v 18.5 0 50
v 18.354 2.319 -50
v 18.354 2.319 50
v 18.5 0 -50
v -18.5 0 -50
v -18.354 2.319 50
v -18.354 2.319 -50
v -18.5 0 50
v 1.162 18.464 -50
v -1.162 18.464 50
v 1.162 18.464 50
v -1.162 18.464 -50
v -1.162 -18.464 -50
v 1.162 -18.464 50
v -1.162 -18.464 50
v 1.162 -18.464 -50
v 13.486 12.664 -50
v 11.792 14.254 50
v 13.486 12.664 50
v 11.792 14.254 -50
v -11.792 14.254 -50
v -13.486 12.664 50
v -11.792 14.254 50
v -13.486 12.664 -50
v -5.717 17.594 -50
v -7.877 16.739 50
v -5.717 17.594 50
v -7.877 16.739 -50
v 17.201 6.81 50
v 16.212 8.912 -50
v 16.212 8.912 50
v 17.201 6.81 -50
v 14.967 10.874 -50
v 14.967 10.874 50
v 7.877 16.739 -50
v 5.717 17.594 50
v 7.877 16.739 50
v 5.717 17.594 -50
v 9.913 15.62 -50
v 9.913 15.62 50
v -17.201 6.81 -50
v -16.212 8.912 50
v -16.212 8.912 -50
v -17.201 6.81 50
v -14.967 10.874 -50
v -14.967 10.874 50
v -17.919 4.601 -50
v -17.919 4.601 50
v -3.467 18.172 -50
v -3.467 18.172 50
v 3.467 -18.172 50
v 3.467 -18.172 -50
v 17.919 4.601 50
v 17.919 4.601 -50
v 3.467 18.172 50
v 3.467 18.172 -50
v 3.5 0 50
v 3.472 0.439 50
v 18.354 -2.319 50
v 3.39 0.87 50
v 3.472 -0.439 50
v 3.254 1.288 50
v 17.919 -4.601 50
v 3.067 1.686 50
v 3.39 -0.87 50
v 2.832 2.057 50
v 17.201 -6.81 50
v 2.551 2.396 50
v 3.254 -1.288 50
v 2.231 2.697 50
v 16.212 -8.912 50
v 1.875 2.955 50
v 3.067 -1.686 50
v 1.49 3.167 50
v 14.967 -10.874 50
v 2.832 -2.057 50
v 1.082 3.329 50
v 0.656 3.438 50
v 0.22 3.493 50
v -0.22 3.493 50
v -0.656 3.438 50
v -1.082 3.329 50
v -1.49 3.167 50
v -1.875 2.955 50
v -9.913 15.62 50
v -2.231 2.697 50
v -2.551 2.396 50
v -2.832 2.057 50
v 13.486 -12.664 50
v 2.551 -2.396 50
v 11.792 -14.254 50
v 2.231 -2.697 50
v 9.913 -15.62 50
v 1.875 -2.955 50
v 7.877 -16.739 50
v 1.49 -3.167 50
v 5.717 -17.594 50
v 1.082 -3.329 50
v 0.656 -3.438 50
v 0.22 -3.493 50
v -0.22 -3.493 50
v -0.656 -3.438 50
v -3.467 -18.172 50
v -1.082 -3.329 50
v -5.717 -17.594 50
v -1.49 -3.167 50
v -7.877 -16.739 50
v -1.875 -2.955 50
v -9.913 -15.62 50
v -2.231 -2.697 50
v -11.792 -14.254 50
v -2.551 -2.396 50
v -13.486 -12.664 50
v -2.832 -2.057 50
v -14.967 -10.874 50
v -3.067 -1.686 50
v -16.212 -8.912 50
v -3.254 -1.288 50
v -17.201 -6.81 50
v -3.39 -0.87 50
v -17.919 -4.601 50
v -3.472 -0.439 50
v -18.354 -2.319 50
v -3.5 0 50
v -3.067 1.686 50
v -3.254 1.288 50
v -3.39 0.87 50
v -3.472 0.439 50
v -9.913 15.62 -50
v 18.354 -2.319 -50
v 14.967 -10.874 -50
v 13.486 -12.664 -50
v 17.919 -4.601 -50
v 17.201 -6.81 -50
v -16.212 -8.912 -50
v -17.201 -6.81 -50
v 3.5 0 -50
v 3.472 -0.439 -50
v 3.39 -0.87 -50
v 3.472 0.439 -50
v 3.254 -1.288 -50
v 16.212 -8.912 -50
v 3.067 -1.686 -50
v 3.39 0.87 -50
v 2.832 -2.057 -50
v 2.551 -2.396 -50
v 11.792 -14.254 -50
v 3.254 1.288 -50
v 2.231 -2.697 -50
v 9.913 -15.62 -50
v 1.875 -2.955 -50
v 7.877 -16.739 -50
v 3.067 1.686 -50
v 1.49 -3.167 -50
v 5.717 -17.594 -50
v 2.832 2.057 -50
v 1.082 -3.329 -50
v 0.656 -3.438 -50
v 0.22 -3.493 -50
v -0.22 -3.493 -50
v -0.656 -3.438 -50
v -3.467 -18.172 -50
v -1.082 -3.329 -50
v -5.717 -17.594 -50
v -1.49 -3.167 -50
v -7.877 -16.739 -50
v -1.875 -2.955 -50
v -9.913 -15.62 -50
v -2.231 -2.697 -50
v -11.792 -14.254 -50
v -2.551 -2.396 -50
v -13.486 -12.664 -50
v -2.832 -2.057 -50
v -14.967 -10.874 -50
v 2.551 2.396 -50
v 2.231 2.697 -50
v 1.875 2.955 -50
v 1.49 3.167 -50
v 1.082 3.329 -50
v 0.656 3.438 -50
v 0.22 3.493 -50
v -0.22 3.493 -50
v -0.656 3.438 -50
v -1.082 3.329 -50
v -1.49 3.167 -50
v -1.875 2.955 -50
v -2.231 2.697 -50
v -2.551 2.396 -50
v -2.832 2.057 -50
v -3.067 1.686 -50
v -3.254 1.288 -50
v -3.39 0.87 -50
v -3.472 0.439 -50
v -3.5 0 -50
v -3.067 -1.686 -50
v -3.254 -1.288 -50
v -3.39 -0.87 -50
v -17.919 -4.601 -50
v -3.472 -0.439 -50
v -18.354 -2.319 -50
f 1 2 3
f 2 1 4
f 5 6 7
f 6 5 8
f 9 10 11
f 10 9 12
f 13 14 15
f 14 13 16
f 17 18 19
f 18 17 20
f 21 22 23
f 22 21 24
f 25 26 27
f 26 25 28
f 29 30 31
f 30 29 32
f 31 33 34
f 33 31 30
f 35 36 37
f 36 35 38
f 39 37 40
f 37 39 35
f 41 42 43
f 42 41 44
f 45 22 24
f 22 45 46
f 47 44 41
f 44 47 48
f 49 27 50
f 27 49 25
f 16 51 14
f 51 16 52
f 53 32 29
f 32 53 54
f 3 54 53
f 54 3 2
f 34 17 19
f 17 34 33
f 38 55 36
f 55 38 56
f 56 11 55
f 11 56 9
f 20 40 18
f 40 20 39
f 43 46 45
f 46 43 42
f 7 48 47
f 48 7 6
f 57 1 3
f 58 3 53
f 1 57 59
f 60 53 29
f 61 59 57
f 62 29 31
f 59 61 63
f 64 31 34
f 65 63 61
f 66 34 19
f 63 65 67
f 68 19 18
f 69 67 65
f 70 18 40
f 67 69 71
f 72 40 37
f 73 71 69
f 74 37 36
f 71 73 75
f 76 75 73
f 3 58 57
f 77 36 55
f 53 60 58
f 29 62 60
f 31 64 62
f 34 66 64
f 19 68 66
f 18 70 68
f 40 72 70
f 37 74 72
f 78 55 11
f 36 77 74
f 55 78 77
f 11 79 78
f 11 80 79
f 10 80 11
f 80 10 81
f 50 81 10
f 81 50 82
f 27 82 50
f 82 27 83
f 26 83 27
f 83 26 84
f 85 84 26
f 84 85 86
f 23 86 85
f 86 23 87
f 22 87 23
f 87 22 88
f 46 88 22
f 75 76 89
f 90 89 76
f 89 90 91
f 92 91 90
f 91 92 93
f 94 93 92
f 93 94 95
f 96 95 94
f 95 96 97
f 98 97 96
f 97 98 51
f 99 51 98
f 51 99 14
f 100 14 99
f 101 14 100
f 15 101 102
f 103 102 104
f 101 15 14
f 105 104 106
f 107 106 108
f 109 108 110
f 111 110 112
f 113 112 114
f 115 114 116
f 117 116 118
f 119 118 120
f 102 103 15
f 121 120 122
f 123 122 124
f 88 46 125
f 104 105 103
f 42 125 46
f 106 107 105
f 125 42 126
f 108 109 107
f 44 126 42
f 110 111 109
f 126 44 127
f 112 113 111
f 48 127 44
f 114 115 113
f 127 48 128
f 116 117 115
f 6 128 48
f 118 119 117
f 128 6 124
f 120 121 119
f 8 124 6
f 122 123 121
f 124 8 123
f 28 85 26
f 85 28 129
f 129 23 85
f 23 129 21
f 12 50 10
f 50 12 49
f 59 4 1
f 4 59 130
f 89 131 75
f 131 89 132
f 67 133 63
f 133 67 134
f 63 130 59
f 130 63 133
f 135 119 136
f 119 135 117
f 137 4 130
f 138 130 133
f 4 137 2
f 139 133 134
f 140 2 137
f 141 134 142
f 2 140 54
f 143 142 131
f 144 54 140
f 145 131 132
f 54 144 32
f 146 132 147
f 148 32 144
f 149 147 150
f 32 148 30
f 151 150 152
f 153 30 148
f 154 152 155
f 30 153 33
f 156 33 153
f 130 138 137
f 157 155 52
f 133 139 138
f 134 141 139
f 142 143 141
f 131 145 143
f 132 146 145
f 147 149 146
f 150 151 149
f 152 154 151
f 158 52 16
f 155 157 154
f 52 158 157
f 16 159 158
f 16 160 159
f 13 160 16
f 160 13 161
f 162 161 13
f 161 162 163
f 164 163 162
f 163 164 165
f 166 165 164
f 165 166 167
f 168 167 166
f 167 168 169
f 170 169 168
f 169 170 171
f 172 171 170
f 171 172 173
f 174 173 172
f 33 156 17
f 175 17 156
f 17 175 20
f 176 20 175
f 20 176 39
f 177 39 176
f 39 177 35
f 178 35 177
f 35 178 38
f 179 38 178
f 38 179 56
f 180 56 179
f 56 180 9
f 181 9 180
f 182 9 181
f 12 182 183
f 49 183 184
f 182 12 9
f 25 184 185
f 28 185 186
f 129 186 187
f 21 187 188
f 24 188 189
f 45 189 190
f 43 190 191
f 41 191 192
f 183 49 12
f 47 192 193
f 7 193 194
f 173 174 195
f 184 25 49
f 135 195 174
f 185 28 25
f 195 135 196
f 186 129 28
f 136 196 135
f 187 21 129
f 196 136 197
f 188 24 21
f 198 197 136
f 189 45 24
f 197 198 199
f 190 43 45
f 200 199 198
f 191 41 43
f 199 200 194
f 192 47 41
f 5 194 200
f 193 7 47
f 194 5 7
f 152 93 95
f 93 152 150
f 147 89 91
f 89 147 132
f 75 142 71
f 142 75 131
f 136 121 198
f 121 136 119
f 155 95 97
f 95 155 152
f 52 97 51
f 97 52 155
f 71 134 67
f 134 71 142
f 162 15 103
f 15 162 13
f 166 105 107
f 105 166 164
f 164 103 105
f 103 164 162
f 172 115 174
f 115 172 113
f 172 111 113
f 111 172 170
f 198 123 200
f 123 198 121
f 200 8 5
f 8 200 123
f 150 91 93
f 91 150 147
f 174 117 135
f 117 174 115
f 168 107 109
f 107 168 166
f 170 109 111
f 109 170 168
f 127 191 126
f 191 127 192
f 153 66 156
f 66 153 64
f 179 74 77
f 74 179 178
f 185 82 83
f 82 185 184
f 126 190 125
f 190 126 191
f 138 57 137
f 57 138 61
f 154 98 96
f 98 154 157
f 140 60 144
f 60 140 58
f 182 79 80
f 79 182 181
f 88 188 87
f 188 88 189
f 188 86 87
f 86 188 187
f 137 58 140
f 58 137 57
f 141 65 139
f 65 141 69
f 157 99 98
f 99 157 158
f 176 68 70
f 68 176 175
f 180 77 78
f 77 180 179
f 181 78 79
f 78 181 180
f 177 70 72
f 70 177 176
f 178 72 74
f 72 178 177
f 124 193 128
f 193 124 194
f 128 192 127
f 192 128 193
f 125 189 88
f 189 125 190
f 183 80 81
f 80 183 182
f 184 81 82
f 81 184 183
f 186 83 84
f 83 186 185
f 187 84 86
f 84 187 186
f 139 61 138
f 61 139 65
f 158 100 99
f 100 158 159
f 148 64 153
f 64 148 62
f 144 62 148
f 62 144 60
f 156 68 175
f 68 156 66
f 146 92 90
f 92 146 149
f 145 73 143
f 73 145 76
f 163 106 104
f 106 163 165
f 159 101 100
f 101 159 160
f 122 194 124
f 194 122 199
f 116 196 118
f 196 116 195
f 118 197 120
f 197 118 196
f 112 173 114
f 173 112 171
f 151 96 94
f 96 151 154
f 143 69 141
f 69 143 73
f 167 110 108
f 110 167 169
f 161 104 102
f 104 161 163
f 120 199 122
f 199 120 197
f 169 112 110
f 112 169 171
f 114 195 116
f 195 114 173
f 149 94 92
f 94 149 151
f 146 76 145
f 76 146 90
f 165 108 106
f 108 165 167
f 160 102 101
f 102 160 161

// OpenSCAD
$fn = 50;


difference() {
	union() {
		translate(v = [0, 0, -50.0000000000]) {
			cylinder(h = 100, r = 18.5000000000);
		}
	}
	union() {
		translate(v = [0, 0, -100.0000000000]) {
			cylinder(h = 200, r = 3.5000000000);
		}
	}
}
